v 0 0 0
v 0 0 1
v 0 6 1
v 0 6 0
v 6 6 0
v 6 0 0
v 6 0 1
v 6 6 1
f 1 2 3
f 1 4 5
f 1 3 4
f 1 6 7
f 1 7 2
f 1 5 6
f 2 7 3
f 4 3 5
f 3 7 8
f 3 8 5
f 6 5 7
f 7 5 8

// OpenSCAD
/* Warning, this is a very basic generator with a lot of approximation 
input data : [VQFN, SFB, 6x6x1mm, 40, , B, C04-21408B]
generated by com.zoubworld.electronics.cad.model3d.Basic
Date : Sun Feb 15 10:50:49 CET 2026
*/

//body
color("black")
translate([0,0,0])
cube([6.0,6.0,1.0], center=false);
